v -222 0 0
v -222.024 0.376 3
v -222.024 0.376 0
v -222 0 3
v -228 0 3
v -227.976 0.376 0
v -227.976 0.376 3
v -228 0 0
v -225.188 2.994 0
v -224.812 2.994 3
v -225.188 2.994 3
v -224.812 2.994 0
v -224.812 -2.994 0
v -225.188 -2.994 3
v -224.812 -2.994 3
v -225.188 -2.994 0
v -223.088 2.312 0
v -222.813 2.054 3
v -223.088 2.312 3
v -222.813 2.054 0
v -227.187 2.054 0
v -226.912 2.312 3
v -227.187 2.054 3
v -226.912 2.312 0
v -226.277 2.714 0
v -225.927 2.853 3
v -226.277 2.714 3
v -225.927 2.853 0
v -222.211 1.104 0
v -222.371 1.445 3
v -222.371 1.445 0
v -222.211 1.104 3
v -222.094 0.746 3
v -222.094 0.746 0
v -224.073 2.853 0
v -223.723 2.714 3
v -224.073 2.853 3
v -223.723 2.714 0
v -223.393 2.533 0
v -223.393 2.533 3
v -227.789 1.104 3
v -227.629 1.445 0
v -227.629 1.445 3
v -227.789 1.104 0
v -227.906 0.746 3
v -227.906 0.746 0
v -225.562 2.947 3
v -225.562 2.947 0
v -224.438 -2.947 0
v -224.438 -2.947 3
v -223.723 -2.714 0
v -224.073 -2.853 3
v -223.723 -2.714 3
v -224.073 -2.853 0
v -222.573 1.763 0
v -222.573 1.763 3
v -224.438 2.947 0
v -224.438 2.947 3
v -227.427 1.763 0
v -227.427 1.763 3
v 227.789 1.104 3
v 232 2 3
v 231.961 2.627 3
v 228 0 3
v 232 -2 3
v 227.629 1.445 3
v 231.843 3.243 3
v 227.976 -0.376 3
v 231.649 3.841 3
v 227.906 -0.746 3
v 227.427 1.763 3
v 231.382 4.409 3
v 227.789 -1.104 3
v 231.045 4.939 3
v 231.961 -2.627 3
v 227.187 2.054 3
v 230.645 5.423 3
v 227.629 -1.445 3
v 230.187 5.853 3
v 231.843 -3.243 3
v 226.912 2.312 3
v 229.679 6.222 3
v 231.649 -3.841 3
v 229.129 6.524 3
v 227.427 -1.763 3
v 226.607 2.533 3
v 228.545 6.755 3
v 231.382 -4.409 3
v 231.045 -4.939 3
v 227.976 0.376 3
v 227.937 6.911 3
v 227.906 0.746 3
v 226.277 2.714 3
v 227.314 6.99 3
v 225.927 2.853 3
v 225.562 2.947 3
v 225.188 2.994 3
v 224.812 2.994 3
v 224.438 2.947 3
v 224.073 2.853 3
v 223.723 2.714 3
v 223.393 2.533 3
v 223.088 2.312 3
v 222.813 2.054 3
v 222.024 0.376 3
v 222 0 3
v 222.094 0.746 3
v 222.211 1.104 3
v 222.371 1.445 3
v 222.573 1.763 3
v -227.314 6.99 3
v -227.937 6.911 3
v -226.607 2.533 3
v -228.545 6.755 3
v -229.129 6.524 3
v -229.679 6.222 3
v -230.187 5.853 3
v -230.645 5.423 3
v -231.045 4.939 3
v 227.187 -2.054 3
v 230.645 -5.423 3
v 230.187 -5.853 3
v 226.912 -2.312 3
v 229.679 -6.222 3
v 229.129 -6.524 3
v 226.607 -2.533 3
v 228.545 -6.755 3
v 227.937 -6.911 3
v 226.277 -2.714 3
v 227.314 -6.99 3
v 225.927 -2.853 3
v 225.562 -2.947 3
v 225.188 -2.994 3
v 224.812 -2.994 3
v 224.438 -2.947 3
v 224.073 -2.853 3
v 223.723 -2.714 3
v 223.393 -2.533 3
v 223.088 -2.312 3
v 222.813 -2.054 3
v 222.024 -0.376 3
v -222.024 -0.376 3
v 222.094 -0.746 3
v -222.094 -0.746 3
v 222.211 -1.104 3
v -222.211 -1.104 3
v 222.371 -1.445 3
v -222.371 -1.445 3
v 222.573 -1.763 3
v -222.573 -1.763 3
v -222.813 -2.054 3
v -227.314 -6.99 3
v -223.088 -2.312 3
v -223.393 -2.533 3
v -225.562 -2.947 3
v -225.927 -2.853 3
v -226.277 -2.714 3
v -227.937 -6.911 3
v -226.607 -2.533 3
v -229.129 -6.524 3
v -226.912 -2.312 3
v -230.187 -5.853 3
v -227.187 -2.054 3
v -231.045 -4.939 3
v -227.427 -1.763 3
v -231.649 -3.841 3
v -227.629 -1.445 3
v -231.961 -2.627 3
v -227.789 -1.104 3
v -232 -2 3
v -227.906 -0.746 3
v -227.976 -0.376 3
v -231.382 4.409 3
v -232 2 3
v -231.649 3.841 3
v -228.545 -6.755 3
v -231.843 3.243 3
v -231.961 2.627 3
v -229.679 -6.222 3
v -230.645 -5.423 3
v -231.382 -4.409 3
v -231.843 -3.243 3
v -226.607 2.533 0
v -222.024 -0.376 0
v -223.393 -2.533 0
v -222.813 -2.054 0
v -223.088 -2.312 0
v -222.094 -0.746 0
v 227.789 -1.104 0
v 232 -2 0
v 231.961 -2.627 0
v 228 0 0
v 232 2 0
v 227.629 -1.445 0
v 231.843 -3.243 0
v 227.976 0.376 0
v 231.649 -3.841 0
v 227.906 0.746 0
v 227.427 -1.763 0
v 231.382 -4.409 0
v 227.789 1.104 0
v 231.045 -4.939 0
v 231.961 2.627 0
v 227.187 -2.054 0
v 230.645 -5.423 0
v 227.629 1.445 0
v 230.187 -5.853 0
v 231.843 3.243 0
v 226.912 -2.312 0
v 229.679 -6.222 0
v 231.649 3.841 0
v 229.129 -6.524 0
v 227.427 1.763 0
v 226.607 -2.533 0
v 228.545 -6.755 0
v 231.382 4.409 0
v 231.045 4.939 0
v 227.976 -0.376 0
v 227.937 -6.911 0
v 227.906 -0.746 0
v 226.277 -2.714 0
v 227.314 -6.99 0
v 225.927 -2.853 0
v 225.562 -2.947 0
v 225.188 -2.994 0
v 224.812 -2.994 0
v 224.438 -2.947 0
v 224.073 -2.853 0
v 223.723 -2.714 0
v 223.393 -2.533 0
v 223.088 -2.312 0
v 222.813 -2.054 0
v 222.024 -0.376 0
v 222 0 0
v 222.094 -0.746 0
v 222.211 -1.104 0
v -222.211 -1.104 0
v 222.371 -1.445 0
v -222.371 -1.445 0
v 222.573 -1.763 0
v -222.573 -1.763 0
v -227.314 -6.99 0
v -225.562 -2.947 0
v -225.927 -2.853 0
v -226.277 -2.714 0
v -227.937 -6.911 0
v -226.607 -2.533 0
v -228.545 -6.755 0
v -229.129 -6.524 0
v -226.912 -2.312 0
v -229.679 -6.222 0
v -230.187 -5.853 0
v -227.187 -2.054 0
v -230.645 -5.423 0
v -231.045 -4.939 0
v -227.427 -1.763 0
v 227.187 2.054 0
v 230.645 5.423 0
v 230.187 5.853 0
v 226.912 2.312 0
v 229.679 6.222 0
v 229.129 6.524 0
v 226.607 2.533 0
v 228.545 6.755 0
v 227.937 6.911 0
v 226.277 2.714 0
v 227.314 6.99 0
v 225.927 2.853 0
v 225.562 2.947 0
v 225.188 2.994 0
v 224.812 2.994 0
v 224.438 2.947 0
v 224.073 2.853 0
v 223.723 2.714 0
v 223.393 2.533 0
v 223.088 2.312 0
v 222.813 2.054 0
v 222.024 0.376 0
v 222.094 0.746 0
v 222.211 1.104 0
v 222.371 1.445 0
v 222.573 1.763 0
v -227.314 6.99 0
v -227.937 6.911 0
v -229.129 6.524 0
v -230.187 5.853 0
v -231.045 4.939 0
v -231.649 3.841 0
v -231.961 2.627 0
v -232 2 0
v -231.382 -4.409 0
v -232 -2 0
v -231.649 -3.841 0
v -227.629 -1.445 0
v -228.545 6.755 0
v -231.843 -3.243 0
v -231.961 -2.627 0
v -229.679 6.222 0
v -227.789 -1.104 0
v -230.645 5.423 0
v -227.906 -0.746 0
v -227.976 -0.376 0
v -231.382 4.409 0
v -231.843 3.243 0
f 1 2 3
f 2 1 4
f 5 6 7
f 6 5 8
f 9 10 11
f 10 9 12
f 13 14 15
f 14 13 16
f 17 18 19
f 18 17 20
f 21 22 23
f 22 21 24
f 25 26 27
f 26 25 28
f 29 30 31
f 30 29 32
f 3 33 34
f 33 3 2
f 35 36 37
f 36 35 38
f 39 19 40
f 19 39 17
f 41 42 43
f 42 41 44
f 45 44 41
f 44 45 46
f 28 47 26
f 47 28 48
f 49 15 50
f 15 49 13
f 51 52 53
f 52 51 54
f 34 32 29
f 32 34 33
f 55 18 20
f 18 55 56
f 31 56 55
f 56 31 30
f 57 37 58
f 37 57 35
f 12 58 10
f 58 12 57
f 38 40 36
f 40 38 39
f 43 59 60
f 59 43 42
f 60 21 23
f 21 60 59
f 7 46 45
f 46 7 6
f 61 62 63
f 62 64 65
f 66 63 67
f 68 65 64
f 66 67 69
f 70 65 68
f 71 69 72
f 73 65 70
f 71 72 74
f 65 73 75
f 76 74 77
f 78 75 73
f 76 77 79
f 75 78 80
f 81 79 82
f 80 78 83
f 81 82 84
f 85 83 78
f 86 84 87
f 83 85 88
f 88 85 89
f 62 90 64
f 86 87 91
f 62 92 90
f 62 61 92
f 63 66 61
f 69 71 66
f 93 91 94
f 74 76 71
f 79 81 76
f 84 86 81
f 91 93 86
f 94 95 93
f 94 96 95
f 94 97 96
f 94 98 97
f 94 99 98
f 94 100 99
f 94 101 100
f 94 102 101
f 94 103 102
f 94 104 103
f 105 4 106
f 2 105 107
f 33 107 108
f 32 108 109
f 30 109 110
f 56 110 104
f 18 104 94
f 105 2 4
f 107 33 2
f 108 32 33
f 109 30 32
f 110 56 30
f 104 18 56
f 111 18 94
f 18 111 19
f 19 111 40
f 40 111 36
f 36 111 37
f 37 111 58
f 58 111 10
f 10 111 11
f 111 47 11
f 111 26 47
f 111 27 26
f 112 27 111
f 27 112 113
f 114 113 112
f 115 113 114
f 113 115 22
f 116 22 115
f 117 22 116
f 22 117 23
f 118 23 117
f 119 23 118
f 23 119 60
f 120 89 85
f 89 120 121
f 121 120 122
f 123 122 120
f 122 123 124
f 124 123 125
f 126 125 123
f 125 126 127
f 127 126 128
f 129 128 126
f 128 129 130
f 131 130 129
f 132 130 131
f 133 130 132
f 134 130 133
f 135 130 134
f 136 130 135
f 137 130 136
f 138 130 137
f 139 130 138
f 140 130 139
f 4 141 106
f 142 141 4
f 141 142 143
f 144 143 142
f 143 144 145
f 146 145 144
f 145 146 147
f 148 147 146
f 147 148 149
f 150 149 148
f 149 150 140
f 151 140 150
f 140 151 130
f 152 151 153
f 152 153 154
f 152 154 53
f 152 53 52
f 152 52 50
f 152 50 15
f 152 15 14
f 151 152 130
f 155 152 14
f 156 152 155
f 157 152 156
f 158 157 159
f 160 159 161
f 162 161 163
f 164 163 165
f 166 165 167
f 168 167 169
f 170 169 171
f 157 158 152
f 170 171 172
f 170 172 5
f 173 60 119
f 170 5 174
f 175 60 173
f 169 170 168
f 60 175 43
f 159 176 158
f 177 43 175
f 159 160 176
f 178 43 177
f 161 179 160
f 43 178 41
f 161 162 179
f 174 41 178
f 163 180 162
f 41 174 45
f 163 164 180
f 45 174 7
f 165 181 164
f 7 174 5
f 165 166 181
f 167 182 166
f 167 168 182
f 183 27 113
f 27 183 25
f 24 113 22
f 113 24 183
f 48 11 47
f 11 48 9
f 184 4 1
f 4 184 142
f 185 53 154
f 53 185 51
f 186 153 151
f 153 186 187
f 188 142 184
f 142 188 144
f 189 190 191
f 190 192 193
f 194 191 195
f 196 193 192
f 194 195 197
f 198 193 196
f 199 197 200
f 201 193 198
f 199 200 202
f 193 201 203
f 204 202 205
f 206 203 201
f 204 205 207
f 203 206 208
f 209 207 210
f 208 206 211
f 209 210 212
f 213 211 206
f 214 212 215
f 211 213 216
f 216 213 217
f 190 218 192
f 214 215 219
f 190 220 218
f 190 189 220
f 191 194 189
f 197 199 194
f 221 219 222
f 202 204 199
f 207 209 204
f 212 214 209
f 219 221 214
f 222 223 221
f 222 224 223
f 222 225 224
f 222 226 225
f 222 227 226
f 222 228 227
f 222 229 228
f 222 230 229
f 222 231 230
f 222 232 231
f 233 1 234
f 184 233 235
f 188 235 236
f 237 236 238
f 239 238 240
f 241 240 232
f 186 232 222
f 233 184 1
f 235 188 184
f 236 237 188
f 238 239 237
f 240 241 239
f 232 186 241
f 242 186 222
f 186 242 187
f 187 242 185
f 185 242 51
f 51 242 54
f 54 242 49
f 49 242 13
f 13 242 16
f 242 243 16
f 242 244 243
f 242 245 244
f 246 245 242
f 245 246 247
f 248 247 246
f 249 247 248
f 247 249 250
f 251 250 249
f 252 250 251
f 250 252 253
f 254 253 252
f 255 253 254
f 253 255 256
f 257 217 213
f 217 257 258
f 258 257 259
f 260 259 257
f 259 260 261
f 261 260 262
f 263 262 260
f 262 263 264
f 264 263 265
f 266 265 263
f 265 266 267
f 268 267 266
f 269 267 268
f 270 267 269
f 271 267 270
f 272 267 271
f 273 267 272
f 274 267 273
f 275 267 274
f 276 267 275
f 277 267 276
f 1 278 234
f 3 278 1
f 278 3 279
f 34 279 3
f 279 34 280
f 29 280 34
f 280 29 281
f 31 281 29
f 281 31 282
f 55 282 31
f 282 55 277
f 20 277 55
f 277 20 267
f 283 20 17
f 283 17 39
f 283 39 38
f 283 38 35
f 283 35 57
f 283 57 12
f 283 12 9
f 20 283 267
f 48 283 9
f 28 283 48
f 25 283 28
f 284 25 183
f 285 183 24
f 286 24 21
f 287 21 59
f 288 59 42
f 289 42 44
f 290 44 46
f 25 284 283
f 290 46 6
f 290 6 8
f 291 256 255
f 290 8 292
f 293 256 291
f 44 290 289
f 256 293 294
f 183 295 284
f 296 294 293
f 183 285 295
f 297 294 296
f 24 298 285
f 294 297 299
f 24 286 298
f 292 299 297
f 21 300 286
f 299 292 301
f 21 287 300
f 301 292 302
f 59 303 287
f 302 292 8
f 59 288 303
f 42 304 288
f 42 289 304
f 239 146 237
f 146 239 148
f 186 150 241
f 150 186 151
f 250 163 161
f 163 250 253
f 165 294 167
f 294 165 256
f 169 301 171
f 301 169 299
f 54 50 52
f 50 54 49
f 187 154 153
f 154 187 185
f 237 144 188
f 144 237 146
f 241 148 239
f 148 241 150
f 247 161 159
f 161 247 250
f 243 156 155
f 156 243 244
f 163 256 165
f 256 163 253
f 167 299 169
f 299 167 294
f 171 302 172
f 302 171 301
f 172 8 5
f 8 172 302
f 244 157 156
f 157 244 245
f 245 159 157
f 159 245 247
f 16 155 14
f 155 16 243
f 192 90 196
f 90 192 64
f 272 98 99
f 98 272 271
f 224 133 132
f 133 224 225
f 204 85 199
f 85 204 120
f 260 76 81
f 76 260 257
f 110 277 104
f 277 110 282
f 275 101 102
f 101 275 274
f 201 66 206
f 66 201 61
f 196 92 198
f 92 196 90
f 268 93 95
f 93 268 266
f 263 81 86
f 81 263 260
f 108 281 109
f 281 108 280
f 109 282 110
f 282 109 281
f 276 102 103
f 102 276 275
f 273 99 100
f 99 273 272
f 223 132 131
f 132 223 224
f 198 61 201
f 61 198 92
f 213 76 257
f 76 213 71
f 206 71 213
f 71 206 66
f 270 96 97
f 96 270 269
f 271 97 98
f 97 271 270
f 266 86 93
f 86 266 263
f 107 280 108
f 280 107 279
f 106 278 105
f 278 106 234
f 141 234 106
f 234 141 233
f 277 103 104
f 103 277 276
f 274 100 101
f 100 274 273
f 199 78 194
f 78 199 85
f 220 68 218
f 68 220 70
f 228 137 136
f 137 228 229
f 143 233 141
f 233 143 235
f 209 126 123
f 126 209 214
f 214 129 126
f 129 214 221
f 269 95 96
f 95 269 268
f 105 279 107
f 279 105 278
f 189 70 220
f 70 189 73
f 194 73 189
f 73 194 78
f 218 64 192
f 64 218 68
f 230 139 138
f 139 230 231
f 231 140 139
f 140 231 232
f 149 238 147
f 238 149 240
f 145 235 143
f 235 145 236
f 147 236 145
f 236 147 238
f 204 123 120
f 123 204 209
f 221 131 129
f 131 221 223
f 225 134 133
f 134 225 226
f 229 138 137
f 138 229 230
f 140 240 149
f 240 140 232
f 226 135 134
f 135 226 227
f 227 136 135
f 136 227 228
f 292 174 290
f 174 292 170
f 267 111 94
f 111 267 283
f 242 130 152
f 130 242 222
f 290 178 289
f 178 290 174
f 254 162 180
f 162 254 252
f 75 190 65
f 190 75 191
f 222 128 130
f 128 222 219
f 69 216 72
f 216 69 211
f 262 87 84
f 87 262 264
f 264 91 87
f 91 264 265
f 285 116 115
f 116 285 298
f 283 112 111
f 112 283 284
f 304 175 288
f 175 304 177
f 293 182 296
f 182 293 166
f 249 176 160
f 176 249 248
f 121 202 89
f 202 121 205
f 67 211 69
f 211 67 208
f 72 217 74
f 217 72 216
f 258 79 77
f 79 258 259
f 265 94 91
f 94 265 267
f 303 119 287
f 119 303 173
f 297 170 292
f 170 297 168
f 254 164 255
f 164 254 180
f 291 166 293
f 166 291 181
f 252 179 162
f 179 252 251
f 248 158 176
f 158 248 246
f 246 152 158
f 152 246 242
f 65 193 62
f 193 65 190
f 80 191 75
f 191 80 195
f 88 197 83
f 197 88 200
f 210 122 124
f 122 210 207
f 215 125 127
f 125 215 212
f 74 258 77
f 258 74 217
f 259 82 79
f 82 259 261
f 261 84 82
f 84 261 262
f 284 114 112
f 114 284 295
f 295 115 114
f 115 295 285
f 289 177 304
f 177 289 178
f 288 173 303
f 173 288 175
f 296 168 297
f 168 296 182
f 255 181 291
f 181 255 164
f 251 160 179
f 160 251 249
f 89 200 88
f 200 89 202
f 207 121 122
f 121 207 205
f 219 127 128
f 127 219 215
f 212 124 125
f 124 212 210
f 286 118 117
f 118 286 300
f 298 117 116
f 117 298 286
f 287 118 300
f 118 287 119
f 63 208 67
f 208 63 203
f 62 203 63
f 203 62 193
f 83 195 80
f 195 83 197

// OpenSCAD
$fn = 50;


difference() {
	union() {
		hull() {
			translate(v = [-227.0000000000, 2.0000000000, 0]) {
				cylinder(h = 3, r = 5);
			}
			translate(v = [227.0000000000, 2.0000000000, 0]) {
				cylinder(h = 3, r = 5);
			}
			translate(v = [-227.0000000000, -2.0000000000, 0]) {
				cylinder(h = 3, r = 5);
			}
			translate(v = [227.0000000000, -2.0000000000, 0]) {
				cylinder(h = 3, r = 5);
			}
		}
	}
	union() {
		translate(v = [-225.0000000000, 0.0000000000, -100.0000000000]) {
			cylinder(h = 200, r = 3.0000000000);
		}
		translate(v = [-225.0000000000, 0.0000000000, -100.0000000000]) {
			cylinder(h = 200, r = 3.0000000000);
		}
		translate(v = [225.0000000000, 0.0000000000, -100.0000000000]) {
			cylinder(h = 200, r = 3.0000000000);
		}
		translate(v = [225.0000000000, 0.0000000000, -100.0000000000]) {
			cylinder(h = 200, r = 3.0000000000);
		}
	}
}
